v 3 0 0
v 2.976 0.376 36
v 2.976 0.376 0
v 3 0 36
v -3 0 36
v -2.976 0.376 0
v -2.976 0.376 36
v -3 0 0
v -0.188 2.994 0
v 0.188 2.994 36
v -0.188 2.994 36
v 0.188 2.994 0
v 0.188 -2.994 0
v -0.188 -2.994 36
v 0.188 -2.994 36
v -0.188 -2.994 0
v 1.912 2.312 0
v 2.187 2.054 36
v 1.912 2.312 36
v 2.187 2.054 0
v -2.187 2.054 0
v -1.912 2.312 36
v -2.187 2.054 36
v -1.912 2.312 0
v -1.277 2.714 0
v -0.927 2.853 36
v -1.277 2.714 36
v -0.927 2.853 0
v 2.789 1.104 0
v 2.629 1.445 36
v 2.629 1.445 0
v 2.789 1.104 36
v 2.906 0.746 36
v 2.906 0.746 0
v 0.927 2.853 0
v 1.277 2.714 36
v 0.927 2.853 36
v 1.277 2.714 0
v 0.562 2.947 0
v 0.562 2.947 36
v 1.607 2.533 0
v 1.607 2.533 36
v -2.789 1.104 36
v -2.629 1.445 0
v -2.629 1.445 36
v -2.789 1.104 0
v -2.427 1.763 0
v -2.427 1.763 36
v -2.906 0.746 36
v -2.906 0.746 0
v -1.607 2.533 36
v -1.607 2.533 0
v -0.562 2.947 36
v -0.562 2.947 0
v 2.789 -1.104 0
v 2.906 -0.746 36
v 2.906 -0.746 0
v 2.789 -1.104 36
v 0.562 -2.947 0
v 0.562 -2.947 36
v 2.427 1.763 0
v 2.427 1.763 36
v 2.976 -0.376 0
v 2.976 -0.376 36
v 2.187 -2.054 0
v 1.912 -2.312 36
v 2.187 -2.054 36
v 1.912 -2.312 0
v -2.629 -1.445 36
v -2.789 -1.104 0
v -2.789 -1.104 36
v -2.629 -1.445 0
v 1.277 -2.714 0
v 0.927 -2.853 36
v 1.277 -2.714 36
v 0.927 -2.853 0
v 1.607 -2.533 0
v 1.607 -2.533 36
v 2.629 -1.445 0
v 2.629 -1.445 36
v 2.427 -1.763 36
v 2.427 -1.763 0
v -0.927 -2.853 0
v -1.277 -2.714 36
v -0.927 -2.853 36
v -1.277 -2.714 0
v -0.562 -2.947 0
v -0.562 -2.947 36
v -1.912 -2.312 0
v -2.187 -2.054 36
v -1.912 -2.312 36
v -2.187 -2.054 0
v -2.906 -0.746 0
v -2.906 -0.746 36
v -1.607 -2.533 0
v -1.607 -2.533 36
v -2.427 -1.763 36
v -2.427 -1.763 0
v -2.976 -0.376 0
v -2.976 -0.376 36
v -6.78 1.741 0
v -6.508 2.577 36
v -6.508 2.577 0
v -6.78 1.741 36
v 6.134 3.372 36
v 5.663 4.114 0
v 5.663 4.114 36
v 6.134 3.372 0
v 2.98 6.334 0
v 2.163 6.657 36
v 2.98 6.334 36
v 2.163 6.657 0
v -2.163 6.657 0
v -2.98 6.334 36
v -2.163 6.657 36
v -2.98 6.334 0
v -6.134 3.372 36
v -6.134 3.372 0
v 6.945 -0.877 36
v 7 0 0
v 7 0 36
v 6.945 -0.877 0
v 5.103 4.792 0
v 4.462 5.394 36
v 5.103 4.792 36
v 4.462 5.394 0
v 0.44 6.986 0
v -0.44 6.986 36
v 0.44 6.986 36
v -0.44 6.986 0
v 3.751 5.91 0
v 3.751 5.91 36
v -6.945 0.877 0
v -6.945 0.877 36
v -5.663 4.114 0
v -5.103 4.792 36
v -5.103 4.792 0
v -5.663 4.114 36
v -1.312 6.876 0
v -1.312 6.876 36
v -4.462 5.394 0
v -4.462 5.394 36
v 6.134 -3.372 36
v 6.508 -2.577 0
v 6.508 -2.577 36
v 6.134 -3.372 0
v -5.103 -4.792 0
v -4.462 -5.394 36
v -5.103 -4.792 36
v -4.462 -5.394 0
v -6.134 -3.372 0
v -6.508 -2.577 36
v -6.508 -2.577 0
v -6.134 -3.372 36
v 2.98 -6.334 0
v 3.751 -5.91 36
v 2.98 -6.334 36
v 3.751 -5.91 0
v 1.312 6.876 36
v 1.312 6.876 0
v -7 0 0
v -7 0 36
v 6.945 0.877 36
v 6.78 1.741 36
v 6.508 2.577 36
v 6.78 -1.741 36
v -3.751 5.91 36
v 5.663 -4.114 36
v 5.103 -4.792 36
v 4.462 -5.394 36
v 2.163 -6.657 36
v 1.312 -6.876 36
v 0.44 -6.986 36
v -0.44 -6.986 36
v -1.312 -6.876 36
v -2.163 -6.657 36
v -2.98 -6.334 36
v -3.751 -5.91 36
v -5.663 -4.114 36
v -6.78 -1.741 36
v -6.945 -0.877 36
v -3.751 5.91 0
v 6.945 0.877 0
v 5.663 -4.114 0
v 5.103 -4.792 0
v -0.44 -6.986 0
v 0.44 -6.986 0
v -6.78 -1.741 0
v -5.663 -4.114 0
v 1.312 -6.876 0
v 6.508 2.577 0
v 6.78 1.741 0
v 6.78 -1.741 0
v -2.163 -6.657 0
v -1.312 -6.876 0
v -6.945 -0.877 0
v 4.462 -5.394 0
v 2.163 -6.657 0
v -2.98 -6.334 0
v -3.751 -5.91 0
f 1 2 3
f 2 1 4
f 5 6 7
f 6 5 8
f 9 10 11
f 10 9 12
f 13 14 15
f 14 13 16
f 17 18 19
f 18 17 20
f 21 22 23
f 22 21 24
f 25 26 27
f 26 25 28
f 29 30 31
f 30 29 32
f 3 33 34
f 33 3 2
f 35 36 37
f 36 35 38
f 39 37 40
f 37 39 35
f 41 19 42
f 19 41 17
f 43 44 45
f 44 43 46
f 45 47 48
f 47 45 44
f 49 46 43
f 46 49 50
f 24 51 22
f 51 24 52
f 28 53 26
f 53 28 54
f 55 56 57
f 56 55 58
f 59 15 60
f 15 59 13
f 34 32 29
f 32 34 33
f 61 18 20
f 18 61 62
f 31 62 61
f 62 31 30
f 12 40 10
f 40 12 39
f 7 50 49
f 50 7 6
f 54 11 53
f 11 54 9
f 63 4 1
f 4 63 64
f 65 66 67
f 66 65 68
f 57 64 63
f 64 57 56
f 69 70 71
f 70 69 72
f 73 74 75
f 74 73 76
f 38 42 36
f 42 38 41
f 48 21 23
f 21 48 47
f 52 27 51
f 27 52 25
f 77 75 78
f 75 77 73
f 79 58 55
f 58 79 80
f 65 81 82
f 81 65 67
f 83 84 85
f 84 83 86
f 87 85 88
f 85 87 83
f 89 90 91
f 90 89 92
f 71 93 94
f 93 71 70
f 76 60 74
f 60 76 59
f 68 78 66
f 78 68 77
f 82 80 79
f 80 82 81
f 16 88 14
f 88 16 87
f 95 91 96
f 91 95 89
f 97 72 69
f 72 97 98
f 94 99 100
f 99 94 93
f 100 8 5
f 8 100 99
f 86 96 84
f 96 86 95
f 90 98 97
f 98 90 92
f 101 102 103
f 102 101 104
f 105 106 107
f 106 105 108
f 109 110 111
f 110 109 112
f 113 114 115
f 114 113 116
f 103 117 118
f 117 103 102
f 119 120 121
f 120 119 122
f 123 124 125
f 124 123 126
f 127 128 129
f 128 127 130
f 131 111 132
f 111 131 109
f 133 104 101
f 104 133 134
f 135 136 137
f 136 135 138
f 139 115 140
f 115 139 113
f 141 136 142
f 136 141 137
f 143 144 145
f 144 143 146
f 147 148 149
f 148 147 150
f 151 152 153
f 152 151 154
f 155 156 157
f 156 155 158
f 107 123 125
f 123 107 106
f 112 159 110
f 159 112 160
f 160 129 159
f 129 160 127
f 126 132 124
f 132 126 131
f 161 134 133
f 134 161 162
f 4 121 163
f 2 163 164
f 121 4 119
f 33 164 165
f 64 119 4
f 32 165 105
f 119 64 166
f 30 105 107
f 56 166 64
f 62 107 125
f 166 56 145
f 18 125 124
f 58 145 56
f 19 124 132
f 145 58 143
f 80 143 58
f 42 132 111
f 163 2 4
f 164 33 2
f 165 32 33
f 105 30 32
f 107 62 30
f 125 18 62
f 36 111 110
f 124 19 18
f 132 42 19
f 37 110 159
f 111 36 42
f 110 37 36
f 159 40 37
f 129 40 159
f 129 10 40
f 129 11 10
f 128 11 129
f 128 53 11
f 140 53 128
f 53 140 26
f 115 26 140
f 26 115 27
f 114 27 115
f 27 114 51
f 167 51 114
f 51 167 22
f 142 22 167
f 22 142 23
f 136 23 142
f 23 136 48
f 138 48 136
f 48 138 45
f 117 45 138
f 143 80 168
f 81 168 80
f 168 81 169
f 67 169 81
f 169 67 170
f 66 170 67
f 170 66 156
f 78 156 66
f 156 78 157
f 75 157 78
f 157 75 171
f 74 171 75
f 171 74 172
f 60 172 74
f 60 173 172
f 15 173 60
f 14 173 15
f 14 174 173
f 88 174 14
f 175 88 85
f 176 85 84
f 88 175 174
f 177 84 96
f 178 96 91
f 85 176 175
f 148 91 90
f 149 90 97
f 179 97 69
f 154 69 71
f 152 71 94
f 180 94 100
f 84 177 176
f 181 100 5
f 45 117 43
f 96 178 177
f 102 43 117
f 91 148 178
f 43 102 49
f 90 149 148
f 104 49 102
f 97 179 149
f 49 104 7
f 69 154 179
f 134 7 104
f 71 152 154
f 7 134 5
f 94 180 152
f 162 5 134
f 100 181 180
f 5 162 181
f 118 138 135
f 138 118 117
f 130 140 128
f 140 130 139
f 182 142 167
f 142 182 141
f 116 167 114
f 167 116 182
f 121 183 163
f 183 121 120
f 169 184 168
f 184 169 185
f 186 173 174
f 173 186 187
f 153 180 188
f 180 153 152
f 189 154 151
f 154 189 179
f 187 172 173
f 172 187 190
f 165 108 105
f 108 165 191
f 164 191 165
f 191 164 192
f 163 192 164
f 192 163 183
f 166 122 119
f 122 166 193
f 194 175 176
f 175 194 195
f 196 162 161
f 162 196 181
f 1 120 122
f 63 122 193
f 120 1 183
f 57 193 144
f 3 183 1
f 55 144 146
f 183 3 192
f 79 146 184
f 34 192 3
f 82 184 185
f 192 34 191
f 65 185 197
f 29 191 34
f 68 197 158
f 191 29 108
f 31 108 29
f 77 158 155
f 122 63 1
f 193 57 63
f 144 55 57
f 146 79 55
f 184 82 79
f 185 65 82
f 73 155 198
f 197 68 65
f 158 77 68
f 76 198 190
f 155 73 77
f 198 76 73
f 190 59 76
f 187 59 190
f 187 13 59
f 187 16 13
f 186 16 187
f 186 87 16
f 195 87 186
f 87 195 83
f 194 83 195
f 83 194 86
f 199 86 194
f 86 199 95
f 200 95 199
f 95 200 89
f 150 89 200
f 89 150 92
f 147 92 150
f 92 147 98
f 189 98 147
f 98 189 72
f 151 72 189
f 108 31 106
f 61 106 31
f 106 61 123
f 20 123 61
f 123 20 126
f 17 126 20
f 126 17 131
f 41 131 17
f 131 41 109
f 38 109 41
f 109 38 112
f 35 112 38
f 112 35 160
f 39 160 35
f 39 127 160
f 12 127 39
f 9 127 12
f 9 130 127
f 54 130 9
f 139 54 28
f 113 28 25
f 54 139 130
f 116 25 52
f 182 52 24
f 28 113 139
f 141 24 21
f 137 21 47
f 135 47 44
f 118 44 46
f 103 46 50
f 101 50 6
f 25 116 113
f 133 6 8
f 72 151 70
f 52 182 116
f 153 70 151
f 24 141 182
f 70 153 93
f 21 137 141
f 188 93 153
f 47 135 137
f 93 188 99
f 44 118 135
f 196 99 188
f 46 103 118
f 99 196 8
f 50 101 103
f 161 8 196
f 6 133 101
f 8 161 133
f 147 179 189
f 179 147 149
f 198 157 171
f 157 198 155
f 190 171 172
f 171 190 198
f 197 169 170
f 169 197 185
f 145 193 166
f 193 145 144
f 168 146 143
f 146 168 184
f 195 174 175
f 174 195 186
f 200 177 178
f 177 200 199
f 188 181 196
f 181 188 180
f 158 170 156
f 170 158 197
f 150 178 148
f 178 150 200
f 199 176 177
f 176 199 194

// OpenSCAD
$fn = 50;


difference() {
	union() {
		*color(alpha = 1.0000000000, c = "gray") {
			translate(v = [0, 7, 0]) {
				linear_extrude(height = 1) {
					text(font = "Arial:style=Bold", halign = "center", size = 4.5000000000, text = "COMMENT plate main", valign = "center");
				}
			}
		}
		cylinder(h = 36, r = 7.0000000000);
	}
	union() {
		*color(alpha = 1.0000000000, c = "gray") {
			translate(v = [0, 7, 0]) {
				linear_extrude(height = 1) {
					text(font = "Arial:style=Bold", halign = "center", size = 4.5000000000, text = "COMMENT holes main", valign = "center");
				}
			}
		}
		translate(v = [0, 0, -100]) {
			cylinder(h = 200, r = 3.0000000000);
		}
		translate(v = [0, 0, -100]) {
			cylinder(h = 200, r = 1.5000000000);
		}
	}
}
